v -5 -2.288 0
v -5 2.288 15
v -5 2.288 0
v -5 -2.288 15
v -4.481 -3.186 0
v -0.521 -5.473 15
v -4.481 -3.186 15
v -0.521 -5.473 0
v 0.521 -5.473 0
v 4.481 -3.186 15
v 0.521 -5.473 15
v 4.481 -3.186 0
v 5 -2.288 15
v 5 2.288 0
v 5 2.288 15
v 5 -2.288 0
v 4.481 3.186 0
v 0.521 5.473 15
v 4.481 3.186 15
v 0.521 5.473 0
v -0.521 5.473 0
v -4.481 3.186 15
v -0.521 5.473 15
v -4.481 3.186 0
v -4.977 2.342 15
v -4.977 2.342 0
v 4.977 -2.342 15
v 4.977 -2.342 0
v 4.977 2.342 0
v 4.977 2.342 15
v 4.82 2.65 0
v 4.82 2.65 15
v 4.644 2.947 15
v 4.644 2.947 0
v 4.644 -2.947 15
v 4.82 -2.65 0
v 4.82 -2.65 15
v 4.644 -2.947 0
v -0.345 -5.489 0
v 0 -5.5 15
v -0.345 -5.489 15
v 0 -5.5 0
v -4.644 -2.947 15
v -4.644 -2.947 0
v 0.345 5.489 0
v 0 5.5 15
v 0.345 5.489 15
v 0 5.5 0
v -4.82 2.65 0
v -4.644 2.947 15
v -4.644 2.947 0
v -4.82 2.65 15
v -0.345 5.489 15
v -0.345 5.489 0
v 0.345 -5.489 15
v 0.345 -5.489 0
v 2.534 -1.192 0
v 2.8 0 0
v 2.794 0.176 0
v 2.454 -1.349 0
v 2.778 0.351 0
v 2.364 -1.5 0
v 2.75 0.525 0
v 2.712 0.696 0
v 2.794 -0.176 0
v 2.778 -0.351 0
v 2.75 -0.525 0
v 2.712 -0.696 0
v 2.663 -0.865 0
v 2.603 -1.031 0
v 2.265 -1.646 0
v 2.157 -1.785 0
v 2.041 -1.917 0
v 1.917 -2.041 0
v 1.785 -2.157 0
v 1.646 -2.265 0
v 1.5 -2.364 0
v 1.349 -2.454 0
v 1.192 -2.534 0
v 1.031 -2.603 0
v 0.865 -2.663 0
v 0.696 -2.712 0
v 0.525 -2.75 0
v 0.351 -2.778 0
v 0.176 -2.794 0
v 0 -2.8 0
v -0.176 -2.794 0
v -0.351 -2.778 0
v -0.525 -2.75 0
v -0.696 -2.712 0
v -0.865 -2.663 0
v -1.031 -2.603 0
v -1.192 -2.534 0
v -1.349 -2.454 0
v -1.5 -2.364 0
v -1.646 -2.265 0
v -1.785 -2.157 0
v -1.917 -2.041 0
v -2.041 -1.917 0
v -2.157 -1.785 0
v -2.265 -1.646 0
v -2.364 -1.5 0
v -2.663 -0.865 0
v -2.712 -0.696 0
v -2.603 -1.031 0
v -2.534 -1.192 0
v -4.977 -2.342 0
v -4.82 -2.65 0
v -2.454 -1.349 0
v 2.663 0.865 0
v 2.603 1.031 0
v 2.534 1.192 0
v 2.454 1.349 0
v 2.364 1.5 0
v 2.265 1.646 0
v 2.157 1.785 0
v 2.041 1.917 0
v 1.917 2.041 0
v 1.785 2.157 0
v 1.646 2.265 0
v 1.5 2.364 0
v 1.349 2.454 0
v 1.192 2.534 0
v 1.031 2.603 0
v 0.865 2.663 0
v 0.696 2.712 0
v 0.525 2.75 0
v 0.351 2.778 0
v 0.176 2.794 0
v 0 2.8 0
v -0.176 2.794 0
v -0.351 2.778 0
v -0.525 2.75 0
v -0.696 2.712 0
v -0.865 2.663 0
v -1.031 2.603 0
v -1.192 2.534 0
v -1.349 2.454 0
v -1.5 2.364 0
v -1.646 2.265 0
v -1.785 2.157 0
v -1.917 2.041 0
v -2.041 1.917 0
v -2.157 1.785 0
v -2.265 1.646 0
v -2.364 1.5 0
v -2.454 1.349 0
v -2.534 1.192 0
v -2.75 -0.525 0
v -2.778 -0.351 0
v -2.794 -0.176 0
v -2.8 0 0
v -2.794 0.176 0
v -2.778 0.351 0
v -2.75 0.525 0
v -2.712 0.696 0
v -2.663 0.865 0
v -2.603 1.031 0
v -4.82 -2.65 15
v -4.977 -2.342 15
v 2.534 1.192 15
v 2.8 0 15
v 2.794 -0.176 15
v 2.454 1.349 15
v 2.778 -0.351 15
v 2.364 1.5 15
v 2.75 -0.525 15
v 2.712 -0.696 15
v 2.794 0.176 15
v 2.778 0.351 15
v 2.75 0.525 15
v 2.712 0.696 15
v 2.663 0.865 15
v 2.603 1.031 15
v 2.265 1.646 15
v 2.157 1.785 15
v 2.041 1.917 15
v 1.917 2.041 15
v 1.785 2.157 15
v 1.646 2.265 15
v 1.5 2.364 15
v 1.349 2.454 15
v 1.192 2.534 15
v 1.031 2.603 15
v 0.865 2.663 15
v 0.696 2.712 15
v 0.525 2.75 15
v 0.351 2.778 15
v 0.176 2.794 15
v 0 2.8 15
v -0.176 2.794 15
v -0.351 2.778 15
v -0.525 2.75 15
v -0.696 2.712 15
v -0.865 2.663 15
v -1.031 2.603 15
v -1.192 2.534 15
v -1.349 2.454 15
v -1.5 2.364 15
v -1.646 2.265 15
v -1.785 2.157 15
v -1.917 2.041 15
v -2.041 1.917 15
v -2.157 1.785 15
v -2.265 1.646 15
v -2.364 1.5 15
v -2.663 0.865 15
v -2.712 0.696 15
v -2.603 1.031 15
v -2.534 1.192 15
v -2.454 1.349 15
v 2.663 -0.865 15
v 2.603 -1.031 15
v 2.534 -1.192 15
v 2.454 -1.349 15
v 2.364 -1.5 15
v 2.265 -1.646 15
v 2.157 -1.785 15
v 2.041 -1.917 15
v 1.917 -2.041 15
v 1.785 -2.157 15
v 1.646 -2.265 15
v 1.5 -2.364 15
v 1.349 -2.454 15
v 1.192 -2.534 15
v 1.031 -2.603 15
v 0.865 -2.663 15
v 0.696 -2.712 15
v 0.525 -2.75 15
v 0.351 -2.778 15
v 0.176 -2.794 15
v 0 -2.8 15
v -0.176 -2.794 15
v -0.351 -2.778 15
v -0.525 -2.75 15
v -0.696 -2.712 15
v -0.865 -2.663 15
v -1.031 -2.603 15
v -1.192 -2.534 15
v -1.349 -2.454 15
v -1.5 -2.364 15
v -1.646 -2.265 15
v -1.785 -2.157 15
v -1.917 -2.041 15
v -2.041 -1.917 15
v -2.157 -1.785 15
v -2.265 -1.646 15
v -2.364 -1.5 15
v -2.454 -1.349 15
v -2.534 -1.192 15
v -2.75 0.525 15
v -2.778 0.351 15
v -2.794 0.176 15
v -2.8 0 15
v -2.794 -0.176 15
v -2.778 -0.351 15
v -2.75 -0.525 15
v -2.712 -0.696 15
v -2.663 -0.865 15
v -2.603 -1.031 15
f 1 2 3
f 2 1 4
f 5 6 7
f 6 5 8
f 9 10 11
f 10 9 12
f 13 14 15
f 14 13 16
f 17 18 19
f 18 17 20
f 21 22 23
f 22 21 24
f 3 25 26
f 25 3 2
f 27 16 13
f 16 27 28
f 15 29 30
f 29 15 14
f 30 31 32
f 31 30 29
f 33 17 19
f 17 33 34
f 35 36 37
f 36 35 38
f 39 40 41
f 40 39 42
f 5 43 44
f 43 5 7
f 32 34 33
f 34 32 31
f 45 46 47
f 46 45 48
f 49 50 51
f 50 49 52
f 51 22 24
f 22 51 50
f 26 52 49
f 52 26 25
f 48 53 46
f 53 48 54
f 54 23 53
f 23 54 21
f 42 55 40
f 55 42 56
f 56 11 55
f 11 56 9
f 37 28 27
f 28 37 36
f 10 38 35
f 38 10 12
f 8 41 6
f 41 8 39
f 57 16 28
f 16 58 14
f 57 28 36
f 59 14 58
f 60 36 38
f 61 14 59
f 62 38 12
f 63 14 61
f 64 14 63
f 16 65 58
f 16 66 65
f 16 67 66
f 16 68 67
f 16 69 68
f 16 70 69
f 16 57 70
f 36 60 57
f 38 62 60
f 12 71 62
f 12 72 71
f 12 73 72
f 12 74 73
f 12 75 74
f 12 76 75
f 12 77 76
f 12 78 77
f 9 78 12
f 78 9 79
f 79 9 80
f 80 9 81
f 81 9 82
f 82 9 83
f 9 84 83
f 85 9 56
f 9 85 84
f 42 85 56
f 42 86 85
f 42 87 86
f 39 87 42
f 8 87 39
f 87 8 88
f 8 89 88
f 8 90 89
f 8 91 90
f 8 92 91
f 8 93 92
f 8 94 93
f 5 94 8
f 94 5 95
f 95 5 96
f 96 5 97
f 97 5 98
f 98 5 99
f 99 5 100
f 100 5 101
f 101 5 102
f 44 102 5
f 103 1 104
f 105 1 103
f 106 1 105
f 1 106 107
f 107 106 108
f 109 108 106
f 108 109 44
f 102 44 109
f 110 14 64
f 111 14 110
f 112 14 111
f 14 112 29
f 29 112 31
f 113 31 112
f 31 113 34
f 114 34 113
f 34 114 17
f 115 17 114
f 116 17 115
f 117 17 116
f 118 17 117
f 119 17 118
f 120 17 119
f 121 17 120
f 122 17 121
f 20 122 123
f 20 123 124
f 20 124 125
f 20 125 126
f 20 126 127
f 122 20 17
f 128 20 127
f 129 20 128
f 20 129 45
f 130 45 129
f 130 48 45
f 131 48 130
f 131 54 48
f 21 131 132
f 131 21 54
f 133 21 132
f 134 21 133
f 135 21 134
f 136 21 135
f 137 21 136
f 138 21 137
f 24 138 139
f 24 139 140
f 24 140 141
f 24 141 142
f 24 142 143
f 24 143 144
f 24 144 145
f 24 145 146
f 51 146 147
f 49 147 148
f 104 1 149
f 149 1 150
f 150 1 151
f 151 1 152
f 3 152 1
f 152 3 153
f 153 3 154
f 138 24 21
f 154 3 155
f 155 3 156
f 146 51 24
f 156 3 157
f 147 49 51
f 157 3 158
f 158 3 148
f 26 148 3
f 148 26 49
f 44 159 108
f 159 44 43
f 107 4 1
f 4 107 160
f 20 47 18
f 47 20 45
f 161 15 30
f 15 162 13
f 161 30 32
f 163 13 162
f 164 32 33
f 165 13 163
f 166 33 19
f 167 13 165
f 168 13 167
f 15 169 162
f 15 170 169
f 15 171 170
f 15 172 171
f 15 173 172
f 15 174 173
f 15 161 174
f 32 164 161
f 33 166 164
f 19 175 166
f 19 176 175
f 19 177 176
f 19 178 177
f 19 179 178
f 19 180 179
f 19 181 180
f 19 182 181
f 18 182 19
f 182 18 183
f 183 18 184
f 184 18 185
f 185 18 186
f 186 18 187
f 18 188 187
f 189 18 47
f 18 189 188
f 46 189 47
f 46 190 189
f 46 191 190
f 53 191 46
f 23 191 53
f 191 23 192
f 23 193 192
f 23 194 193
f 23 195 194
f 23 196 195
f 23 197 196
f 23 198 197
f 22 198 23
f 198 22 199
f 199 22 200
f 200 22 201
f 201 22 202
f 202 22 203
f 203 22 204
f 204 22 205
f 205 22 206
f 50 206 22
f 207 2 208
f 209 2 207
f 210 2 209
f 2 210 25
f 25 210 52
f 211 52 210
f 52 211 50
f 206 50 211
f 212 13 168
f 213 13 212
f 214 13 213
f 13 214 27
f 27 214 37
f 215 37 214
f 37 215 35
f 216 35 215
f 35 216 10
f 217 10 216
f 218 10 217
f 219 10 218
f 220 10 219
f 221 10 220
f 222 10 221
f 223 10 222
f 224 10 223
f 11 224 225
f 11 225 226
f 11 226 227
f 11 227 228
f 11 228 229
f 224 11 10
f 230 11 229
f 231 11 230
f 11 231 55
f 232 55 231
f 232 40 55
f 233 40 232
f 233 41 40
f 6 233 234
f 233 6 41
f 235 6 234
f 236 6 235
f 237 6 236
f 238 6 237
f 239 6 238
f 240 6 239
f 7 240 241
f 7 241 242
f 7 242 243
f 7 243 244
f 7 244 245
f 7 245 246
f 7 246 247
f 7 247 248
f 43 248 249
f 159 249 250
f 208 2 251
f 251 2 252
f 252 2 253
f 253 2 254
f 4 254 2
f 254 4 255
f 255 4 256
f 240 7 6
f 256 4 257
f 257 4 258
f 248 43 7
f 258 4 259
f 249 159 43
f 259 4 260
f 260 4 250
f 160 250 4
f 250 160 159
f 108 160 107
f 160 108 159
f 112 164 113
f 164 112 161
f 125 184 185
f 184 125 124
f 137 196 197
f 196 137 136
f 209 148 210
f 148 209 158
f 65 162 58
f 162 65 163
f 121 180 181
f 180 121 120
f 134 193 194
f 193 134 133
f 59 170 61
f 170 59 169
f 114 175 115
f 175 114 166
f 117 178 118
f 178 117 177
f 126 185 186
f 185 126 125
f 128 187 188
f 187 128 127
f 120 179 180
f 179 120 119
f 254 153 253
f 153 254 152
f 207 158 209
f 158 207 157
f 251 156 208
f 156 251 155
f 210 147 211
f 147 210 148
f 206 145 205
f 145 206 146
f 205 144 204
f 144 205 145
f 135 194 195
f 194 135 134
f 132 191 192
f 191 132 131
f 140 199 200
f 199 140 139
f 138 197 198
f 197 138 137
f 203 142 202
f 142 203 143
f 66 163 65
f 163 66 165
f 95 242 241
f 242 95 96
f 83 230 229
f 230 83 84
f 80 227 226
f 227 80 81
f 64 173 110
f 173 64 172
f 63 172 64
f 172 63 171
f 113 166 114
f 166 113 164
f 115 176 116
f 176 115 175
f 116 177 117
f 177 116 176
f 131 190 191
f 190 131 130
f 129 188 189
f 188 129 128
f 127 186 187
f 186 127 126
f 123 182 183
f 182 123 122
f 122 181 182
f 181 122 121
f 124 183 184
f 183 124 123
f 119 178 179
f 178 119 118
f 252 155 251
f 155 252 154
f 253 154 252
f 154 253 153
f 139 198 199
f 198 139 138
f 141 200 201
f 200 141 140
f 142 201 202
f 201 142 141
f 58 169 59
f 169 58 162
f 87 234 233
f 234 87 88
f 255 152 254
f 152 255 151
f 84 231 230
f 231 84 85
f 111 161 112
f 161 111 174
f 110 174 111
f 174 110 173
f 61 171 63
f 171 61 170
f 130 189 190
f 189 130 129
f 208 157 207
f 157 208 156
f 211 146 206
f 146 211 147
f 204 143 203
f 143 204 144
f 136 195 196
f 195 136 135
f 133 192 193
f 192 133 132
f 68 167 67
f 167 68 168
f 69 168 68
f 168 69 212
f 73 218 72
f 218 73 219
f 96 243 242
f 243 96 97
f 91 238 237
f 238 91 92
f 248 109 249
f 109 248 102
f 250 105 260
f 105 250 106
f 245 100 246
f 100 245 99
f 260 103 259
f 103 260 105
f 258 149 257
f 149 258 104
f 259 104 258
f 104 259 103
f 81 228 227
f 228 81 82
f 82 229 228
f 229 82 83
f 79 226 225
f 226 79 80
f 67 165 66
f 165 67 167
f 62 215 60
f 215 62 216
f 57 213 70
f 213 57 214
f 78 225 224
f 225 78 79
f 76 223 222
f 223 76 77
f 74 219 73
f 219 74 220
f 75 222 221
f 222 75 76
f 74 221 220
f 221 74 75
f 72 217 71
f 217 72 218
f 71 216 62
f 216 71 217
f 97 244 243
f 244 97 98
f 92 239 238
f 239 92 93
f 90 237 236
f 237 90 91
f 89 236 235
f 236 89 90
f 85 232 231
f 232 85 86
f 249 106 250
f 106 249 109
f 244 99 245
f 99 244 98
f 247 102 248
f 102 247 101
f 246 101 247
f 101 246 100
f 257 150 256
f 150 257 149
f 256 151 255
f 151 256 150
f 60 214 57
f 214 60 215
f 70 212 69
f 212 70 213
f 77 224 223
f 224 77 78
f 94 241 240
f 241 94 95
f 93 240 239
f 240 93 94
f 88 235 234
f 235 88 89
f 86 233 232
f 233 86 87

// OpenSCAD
//M4 Stud Extension
// use brass inserts either end

$fn=100;

d=11;
l=15;
insert_d=5.6;
//insert_t=6.6;

wrench=d-0.5;
wrench_t=l+2;

difference() {
    cylinder(d=d, h=l);
    
    translate([0,0,-1])
    cylinder(d=insert_d, h=l+2);
    
    for (i = [-wrench, wrench], j = [0,60,120])
        rotate([0,0,j])
        translate([i, 0, l/2])
        cube([d,d,wrench_t], center=true);
}
